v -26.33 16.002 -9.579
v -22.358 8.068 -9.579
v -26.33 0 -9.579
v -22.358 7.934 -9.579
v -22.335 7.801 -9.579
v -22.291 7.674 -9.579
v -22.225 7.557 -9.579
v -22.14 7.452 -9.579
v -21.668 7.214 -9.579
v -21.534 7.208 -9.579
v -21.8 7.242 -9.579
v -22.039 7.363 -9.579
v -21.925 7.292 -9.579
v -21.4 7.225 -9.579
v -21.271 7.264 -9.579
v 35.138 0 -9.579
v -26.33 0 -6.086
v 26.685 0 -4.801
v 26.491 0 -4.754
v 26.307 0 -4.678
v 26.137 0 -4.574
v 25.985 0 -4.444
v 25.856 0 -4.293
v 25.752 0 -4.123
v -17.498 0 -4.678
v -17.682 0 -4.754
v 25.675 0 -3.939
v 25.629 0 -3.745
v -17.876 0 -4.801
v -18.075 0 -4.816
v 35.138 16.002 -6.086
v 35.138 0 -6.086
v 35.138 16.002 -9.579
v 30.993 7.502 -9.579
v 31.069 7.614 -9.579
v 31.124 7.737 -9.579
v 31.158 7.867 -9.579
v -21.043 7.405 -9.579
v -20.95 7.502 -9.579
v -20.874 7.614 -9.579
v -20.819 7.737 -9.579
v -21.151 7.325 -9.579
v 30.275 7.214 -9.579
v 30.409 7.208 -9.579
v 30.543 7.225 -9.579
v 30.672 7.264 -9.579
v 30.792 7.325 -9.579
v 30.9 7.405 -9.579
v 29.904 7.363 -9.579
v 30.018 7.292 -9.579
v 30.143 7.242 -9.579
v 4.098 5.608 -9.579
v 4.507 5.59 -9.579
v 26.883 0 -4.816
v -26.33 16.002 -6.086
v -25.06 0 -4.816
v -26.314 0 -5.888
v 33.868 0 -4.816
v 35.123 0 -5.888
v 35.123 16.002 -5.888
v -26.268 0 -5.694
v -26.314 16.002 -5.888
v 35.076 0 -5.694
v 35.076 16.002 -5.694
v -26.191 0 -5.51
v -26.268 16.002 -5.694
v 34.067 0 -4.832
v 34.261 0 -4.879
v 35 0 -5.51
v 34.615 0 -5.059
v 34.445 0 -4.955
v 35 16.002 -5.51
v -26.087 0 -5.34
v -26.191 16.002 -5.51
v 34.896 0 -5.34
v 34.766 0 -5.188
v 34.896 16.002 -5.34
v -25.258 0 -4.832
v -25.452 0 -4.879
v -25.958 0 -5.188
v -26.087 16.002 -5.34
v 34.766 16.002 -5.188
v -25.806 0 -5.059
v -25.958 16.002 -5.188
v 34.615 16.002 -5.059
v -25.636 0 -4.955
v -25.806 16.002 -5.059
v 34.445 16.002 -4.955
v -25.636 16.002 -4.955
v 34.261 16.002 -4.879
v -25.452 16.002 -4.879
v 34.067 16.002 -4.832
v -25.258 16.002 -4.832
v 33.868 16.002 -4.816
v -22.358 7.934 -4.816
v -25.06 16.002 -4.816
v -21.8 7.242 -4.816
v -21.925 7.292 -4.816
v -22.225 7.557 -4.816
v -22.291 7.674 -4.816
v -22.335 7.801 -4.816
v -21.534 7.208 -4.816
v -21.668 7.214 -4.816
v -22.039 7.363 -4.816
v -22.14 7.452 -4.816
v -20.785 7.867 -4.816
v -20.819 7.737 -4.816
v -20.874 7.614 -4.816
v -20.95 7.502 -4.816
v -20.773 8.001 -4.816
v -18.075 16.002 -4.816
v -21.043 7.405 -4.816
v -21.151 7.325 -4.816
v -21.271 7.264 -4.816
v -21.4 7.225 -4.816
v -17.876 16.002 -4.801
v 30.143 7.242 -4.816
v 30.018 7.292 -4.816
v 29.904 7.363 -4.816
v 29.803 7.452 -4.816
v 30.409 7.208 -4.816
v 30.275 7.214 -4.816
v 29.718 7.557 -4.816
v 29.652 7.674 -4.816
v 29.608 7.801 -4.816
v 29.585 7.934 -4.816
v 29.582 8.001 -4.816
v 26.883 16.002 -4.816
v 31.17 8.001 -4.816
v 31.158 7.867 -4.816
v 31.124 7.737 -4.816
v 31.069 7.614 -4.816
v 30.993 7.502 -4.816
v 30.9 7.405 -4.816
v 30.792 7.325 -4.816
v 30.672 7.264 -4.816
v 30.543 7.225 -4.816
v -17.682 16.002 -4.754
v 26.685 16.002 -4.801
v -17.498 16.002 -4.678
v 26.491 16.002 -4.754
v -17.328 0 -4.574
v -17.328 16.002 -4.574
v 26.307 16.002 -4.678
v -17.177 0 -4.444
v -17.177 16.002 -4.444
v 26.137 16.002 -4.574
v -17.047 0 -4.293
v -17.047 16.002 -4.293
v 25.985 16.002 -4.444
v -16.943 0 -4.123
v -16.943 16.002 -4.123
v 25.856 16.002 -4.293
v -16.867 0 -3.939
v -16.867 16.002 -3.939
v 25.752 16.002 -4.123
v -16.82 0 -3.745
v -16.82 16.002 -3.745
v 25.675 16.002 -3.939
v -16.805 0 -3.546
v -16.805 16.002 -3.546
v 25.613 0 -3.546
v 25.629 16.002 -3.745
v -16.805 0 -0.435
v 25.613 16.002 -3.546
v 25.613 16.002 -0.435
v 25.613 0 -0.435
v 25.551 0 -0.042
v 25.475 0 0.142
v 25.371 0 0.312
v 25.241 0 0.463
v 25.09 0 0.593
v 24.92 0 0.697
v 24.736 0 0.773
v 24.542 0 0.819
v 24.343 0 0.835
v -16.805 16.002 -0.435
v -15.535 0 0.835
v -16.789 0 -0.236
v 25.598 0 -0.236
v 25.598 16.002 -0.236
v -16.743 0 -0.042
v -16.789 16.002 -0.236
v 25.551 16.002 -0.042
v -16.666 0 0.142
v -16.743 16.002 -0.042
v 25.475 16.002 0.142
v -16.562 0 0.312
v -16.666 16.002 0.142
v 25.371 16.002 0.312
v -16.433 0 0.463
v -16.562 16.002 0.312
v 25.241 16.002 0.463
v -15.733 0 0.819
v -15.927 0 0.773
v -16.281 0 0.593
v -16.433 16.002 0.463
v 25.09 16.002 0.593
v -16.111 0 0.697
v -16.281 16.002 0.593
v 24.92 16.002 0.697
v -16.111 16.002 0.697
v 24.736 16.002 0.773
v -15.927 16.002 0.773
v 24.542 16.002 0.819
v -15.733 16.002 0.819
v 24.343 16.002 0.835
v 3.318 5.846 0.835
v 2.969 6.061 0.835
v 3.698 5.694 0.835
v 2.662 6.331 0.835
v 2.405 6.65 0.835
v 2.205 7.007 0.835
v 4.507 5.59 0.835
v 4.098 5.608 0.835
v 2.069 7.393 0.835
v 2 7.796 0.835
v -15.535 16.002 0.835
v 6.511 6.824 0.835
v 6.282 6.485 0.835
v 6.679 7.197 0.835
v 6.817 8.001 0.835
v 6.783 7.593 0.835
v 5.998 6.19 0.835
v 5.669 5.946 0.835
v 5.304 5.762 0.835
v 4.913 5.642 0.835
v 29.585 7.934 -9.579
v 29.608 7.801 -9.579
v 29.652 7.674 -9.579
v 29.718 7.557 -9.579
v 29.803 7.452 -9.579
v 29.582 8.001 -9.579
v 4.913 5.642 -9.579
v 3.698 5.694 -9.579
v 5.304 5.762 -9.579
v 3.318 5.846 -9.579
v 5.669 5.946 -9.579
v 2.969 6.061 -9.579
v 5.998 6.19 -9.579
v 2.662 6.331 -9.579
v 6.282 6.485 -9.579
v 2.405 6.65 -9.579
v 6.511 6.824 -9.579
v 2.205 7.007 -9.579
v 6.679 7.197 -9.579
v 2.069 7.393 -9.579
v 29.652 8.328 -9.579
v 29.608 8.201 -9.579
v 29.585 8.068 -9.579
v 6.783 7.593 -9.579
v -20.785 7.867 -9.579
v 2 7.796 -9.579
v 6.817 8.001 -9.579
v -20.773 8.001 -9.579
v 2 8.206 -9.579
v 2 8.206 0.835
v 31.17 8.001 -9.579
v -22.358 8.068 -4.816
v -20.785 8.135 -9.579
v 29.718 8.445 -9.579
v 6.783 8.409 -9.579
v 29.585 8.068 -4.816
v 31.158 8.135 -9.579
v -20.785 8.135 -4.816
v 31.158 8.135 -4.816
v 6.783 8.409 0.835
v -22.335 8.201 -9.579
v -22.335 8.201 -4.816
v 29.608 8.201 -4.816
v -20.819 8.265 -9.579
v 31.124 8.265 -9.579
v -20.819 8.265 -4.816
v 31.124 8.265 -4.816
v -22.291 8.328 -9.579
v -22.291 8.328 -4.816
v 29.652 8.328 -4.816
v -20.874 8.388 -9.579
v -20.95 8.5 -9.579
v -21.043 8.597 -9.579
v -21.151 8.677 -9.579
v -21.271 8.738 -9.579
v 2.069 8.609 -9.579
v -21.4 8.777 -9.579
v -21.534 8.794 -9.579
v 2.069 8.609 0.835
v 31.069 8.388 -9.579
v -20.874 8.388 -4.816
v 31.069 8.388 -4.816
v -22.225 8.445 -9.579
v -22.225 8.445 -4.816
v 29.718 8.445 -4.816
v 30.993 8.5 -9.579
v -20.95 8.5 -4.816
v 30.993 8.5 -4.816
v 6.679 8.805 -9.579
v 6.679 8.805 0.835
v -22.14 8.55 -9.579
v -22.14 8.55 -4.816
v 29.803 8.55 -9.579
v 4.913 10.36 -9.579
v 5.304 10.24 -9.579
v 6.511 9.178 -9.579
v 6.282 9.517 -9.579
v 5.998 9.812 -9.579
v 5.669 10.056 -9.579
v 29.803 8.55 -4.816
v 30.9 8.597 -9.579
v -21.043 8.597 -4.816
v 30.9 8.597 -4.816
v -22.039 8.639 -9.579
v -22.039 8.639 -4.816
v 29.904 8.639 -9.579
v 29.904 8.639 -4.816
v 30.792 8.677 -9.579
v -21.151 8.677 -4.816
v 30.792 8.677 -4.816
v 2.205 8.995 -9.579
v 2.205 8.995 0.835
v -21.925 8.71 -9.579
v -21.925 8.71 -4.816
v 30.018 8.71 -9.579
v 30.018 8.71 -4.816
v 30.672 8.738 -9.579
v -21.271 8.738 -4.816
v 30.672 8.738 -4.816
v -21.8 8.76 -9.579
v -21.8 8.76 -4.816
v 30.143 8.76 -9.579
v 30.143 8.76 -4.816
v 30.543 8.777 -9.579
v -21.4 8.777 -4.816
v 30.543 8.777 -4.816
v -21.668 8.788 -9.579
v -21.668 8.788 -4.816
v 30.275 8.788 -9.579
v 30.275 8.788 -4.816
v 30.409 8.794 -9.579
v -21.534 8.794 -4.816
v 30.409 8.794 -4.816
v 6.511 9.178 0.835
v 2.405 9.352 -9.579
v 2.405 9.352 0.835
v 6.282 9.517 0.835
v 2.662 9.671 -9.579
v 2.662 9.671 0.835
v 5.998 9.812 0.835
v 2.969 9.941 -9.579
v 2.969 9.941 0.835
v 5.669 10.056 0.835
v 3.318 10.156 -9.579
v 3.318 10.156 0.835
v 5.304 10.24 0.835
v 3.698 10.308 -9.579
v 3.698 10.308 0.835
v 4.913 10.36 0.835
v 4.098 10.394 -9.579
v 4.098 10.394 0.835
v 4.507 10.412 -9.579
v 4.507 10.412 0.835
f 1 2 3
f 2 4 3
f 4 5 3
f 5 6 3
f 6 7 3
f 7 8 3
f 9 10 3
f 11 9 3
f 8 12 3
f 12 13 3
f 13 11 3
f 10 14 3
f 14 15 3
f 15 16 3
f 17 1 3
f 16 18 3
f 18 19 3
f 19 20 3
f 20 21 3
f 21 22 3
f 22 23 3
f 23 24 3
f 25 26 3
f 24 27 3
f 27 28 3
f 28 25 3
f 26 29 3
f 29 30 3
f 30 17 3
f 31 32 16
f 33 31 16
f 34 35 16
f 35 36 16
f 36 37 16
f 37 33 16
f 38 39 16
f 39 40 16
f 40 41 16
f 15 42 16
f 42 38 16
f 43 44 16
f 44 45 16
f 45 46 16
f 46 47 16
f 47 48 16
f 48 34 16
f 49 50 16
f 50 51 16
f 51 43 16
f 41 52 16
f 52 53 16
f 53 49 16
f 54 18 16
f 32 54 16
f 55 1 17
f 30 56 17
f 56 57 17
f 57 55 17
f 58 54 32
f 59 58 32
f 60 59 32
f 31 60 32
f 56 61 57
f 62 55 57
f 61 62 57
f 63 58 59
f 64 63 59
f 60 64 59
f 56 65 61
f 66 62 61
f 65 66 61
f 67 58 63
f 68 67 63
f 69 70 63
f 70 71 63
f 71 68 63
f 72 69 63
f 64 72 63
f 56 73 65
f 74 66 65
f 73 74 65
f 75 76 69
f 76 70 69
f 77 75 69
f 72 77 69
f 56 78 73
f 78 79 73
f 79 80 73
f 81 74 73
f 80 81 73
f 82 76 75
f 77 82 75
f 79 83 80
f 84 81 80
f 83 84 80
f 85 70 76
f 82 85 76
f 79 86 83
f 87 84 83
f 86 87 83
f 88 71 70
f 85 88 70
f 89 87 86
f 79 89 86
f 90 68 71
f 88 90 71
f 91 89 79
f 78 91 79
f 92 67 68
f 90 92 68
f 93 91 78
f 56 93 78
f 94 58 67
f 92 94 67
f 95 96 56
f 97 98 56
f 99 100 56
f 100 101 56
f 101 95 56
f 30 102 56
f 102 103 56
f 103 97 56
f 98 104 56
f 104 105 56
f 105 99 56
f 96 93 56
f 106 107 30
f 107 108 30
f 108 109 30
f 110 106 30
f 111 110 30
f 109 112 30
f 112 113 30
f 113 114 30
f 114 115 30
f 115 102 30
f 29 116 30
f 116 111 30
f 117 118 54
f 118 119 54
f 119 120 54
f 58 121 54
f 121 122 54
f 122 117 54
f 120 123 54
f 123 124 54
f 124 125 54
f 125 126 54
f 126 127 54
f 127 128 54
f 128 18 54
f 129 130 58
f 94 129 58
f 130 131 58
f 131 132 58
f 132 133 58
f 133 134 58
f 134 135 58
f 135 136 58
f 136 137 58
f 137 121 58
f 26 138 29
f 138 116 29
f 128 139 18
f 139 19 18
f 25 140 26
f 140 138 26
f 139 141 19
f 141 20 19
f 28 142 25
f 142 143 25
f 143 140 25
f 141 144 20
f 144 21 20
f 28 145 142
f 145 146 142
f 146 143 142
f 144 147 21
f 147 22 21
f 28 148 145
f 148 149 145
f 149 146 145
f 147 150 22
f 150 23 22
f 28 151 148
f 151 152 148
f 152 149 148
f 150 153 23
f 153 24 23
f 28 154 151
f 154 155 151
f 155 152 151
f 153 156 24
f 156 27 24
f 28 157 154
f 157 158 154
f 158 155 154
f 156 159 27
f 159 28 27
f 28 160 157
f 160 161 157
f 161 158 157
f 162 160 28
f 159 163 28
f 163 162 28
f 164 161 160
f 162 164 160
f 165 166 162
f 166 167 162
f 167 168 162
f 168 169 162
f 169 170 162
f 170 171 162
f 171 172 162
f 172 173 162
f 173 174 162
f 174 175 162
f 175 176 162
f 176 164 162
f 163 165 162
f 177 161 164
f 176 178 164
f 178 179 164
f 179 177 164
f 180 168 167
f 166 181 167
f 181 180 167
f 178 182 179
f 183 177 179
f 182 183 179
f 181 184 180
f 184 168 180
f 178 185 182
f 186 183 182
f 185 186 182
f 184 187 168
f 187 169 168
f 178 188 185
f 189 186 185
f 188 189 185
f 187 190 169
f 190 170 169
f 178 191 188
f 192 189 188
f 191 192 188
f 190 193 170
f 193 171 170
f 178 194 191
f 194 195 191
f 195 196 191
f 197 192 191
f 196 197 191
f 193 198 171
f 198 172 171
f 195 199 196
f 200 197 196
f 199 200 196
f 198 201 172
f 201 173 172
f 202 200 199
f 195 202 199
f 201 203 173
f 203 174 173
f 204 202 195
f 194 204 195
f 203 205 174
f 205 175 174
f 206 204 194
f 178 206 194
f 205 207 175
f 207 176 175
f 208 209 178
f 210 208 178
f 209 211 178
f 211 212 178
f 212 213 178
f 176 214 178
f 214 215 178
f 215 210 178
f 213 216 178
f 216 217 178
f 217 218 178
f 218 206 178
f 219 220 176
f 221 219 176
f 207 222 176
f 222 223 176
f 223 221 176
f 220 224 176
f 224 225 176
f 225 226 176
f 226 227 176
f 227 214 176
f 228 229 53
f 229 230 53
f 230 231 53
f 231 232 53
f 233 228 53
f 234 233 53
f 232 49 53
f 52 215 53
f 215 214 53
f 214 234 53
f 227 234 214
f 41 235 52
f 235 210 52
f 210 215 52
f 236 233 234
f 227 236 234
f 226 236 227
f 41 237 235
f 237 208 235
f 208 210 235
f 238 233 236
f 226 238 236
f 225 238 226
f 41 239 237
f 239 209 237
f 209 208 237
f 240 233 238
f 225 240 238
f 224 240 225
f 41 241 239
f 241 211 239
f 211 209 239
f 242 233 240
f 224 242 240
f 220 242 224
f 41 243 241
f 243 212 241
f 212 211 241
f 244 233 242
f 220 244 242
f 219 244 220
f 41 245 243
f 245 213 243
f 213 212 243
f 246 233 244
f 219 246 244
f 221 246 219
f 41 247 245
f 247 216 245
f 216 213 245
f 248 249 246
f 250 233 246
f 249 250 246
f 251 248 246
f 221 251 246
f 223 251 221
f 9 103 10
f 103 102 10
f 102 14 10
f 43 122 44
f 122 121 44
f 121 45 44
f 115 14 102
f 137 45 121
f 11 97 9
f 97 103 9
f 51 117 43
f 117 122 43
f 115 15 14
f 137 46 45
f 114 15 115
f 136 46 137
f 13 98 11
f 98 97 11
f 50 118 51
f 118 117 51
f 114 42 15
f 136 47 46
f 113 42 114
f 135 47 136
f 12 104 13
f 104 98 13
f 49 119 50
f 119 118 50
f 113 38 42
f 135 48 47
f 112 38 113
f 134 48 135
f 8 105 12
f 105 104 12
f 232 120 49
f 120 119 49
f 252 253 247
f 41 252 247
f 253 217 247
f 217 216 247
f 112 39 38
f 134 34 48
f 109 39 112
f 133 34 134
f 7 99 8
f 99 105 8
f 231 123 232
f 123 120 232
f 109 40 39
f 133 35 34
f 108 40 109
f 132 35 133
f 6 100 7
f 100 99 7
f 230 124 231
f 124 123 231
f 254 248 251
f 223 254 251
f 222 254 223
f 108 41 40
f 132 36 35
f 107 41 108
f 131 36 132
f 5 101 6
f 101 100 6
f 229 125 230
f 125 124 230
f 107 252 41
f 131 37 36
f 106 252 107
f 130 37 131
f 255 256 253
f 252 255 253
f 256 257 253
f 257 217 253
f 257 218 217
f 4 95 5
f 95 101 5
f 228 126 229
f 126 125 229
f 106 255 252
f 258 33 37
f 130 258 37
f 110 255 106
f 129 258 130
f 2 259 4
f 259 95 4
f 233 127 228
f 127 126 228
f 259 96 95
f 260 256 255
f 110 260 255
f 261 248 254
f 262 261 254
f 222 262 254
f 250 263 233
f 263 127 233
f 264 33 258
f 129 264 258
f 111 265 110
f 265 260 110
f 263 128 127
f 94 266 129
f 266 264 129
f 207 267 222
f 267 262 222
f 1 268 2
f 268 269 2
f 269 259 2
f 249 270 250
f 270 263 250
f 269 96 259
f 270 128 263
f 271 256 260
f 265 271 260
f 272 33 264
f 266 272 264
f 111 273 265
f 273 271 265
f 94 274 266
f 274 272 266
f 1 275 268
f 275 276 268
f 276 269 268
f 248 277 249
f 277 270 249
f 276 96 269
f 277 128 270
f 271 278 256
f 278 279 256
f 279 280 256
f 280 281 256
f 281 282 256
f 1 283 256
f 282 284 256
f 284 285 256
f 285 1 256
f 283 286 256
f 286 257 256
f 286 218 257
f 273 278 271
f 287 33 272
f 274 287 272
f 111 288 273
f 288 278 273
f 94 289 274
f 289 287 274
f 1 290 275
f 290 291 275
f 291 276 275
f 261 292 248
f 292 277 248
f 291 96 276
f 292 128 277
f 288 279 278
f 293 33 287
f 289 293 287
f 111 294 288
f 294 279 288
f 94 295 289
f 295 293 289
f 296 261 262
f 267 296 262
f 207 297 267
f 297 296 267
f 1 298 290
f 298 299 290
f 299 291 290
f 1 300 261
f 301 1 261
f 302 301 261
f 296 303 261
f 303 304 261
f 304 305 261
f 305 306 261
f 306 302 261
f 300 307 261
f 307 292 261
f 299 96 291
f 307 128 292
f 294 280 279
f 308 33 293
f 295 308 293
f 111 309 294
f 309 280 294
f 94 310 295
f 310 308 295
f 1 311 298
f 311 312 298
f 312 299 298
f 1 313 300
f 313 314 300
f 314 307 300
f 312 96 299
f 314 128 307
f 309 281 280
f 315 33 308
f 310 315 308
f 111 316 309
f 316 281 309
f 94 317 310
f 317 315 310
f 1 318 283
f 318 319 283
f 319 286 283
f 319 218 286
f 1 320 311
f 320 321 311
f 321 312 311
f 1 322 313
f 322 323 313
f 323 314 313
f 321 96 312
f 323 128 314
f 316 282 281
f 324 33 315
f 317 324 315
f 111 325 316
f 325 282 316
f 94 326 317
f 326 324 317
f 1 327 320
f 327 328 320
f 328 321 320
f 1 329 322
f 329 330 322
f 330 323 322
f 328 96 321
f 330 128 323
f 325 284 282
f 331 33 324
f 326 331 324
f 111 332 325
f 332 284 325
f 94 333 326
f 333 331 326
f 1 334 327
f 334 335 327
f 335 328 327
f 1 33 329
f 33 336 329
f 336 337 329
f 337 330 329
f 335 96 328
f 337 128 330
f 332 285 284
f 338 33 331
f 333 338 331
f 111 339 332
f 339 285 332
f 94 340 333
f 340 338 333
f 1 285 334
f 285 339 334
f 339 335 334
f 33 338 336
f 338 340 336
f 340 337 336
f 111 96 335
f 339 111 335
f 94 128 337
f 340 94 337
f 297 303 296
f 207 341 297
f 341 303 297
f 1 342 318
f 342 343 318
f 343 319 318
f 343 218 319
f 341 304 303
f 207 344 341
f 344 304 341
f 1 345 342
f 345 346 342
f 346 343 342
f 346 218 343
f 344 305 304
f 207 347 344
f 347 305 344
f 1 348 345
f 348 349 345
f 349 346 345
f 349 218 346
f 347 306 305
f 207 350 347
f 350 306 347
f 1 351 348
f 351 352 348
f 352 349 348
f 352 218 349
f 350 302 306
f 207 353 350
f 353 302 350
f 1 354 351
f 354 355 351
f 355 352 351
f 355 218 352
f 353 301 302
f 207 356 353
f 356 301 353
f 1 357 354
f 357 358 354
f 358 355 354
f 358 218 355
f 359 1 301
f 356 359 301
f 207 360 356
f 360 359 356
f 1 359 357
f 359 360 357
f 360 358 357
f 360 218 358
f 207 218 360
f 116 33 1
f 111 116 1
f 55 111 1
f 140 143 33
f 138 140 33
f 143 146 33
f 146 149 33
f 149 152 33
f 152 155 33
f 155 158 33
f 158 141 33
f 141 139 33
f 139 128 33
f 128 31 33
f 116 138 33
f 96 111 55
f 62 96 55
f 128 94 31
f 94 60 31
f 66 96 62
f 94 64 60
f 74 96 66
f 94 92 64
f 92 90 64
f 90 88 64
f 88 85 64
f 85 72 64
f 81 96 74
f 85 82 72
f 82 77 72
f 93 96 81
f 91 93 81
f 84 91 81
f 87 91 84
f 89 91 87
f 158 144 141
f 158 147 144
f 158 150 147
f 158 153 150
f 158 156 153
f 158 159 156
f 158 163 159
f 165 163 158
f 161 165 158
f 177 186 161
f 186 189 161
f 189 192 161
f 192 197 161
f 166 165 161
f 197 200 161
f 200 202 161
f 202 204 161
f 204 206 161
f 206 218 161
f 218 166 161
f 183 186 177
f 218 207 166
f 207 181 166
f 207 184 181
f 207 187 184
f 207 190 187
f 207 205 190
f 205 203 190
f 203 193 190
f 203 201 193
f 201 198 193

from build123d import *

# Parameters (mm, degrees)
BOSS_EXTRUDE1_DEPTH = 16.002
FILLET1_R           = 1.27
SKETCH2_R           = 2.413
CUT_EXTRUDE1_DEPTH  = 40.990161384
SKETCH3_R           = 0.79375
CUT_EXTRUDE2_DEPTH  = 40.021802416


with BuildPart() as part:
    # Sketch1 → Boss-Extrude1 (new body)
    with BuildSketch(Plane(origin=(0, 0, 0), x_dir=(1, 0, 0), z_dir=(0, 1, 0))):
        Polygon((4.404264151, -0.835084906), (4.404264151, 9.578915094), (-26.329735849, 9.578915094), (-26.329735849, 4.816415094), (-16.804735849, 4.816415094), (-16.804735849, -0.835084906), align=None)
        Polygon((35.138264151, 4.816415094), (35.138264151, 9.578915094), (4.404264151, 9.578915094), (4.404264151, -0.835084906), (25.613264151, -0.835084906), (25.613264151, 4.816415094), align=None)
    extrude(amount=BOSS_EXTRUDE1_DEPTH)

    # Fillet1
    fillet1_edges = [part.edges().sort_by_distance(p)[0] for p in [
        (-16.804735849, 8.001, 0.835084906),
        (-16.804735849, 8.001, -4.816415094),
        (-26.329735849, 8.001, -4.816415094),
        (35.138264151, 8.001, -4.816415094),
        (25.613264151, 8.001, -4.816415094),
        (25.613264151, 8.001, 0.835084906),
    ]]
    fillet(fillet1_edges, radius=FILLET1_R)

    # Sketch2 → Cut-Extrude1 (cut, through all)
    with BuildSketch(Plane.XY.offset(0.835084906)):
        with Locations((4.404264151, 8.001)):
            Circle(SKETCH2_R)
    extrude(amount=-CUT_EXTRUDE1_DEPTH, mode=Mode.SUBTRACT)

    # Sketch3 → Cut-Extrude2 (cut, through all)
    with BuildSketch(Plane.XY.offset(-4.816415094)):
        with Locations((-21.567235849, 8.001)):
            Circle(SKETCH3_R)
        with Locations((30.375764151, 8.001)):
            Circle(SKETCH3_R)
    extrude(amount=-CUT_EXTRUDE2_DEPTH, mode=Mode.SUBTRACT)


solid = part.part
